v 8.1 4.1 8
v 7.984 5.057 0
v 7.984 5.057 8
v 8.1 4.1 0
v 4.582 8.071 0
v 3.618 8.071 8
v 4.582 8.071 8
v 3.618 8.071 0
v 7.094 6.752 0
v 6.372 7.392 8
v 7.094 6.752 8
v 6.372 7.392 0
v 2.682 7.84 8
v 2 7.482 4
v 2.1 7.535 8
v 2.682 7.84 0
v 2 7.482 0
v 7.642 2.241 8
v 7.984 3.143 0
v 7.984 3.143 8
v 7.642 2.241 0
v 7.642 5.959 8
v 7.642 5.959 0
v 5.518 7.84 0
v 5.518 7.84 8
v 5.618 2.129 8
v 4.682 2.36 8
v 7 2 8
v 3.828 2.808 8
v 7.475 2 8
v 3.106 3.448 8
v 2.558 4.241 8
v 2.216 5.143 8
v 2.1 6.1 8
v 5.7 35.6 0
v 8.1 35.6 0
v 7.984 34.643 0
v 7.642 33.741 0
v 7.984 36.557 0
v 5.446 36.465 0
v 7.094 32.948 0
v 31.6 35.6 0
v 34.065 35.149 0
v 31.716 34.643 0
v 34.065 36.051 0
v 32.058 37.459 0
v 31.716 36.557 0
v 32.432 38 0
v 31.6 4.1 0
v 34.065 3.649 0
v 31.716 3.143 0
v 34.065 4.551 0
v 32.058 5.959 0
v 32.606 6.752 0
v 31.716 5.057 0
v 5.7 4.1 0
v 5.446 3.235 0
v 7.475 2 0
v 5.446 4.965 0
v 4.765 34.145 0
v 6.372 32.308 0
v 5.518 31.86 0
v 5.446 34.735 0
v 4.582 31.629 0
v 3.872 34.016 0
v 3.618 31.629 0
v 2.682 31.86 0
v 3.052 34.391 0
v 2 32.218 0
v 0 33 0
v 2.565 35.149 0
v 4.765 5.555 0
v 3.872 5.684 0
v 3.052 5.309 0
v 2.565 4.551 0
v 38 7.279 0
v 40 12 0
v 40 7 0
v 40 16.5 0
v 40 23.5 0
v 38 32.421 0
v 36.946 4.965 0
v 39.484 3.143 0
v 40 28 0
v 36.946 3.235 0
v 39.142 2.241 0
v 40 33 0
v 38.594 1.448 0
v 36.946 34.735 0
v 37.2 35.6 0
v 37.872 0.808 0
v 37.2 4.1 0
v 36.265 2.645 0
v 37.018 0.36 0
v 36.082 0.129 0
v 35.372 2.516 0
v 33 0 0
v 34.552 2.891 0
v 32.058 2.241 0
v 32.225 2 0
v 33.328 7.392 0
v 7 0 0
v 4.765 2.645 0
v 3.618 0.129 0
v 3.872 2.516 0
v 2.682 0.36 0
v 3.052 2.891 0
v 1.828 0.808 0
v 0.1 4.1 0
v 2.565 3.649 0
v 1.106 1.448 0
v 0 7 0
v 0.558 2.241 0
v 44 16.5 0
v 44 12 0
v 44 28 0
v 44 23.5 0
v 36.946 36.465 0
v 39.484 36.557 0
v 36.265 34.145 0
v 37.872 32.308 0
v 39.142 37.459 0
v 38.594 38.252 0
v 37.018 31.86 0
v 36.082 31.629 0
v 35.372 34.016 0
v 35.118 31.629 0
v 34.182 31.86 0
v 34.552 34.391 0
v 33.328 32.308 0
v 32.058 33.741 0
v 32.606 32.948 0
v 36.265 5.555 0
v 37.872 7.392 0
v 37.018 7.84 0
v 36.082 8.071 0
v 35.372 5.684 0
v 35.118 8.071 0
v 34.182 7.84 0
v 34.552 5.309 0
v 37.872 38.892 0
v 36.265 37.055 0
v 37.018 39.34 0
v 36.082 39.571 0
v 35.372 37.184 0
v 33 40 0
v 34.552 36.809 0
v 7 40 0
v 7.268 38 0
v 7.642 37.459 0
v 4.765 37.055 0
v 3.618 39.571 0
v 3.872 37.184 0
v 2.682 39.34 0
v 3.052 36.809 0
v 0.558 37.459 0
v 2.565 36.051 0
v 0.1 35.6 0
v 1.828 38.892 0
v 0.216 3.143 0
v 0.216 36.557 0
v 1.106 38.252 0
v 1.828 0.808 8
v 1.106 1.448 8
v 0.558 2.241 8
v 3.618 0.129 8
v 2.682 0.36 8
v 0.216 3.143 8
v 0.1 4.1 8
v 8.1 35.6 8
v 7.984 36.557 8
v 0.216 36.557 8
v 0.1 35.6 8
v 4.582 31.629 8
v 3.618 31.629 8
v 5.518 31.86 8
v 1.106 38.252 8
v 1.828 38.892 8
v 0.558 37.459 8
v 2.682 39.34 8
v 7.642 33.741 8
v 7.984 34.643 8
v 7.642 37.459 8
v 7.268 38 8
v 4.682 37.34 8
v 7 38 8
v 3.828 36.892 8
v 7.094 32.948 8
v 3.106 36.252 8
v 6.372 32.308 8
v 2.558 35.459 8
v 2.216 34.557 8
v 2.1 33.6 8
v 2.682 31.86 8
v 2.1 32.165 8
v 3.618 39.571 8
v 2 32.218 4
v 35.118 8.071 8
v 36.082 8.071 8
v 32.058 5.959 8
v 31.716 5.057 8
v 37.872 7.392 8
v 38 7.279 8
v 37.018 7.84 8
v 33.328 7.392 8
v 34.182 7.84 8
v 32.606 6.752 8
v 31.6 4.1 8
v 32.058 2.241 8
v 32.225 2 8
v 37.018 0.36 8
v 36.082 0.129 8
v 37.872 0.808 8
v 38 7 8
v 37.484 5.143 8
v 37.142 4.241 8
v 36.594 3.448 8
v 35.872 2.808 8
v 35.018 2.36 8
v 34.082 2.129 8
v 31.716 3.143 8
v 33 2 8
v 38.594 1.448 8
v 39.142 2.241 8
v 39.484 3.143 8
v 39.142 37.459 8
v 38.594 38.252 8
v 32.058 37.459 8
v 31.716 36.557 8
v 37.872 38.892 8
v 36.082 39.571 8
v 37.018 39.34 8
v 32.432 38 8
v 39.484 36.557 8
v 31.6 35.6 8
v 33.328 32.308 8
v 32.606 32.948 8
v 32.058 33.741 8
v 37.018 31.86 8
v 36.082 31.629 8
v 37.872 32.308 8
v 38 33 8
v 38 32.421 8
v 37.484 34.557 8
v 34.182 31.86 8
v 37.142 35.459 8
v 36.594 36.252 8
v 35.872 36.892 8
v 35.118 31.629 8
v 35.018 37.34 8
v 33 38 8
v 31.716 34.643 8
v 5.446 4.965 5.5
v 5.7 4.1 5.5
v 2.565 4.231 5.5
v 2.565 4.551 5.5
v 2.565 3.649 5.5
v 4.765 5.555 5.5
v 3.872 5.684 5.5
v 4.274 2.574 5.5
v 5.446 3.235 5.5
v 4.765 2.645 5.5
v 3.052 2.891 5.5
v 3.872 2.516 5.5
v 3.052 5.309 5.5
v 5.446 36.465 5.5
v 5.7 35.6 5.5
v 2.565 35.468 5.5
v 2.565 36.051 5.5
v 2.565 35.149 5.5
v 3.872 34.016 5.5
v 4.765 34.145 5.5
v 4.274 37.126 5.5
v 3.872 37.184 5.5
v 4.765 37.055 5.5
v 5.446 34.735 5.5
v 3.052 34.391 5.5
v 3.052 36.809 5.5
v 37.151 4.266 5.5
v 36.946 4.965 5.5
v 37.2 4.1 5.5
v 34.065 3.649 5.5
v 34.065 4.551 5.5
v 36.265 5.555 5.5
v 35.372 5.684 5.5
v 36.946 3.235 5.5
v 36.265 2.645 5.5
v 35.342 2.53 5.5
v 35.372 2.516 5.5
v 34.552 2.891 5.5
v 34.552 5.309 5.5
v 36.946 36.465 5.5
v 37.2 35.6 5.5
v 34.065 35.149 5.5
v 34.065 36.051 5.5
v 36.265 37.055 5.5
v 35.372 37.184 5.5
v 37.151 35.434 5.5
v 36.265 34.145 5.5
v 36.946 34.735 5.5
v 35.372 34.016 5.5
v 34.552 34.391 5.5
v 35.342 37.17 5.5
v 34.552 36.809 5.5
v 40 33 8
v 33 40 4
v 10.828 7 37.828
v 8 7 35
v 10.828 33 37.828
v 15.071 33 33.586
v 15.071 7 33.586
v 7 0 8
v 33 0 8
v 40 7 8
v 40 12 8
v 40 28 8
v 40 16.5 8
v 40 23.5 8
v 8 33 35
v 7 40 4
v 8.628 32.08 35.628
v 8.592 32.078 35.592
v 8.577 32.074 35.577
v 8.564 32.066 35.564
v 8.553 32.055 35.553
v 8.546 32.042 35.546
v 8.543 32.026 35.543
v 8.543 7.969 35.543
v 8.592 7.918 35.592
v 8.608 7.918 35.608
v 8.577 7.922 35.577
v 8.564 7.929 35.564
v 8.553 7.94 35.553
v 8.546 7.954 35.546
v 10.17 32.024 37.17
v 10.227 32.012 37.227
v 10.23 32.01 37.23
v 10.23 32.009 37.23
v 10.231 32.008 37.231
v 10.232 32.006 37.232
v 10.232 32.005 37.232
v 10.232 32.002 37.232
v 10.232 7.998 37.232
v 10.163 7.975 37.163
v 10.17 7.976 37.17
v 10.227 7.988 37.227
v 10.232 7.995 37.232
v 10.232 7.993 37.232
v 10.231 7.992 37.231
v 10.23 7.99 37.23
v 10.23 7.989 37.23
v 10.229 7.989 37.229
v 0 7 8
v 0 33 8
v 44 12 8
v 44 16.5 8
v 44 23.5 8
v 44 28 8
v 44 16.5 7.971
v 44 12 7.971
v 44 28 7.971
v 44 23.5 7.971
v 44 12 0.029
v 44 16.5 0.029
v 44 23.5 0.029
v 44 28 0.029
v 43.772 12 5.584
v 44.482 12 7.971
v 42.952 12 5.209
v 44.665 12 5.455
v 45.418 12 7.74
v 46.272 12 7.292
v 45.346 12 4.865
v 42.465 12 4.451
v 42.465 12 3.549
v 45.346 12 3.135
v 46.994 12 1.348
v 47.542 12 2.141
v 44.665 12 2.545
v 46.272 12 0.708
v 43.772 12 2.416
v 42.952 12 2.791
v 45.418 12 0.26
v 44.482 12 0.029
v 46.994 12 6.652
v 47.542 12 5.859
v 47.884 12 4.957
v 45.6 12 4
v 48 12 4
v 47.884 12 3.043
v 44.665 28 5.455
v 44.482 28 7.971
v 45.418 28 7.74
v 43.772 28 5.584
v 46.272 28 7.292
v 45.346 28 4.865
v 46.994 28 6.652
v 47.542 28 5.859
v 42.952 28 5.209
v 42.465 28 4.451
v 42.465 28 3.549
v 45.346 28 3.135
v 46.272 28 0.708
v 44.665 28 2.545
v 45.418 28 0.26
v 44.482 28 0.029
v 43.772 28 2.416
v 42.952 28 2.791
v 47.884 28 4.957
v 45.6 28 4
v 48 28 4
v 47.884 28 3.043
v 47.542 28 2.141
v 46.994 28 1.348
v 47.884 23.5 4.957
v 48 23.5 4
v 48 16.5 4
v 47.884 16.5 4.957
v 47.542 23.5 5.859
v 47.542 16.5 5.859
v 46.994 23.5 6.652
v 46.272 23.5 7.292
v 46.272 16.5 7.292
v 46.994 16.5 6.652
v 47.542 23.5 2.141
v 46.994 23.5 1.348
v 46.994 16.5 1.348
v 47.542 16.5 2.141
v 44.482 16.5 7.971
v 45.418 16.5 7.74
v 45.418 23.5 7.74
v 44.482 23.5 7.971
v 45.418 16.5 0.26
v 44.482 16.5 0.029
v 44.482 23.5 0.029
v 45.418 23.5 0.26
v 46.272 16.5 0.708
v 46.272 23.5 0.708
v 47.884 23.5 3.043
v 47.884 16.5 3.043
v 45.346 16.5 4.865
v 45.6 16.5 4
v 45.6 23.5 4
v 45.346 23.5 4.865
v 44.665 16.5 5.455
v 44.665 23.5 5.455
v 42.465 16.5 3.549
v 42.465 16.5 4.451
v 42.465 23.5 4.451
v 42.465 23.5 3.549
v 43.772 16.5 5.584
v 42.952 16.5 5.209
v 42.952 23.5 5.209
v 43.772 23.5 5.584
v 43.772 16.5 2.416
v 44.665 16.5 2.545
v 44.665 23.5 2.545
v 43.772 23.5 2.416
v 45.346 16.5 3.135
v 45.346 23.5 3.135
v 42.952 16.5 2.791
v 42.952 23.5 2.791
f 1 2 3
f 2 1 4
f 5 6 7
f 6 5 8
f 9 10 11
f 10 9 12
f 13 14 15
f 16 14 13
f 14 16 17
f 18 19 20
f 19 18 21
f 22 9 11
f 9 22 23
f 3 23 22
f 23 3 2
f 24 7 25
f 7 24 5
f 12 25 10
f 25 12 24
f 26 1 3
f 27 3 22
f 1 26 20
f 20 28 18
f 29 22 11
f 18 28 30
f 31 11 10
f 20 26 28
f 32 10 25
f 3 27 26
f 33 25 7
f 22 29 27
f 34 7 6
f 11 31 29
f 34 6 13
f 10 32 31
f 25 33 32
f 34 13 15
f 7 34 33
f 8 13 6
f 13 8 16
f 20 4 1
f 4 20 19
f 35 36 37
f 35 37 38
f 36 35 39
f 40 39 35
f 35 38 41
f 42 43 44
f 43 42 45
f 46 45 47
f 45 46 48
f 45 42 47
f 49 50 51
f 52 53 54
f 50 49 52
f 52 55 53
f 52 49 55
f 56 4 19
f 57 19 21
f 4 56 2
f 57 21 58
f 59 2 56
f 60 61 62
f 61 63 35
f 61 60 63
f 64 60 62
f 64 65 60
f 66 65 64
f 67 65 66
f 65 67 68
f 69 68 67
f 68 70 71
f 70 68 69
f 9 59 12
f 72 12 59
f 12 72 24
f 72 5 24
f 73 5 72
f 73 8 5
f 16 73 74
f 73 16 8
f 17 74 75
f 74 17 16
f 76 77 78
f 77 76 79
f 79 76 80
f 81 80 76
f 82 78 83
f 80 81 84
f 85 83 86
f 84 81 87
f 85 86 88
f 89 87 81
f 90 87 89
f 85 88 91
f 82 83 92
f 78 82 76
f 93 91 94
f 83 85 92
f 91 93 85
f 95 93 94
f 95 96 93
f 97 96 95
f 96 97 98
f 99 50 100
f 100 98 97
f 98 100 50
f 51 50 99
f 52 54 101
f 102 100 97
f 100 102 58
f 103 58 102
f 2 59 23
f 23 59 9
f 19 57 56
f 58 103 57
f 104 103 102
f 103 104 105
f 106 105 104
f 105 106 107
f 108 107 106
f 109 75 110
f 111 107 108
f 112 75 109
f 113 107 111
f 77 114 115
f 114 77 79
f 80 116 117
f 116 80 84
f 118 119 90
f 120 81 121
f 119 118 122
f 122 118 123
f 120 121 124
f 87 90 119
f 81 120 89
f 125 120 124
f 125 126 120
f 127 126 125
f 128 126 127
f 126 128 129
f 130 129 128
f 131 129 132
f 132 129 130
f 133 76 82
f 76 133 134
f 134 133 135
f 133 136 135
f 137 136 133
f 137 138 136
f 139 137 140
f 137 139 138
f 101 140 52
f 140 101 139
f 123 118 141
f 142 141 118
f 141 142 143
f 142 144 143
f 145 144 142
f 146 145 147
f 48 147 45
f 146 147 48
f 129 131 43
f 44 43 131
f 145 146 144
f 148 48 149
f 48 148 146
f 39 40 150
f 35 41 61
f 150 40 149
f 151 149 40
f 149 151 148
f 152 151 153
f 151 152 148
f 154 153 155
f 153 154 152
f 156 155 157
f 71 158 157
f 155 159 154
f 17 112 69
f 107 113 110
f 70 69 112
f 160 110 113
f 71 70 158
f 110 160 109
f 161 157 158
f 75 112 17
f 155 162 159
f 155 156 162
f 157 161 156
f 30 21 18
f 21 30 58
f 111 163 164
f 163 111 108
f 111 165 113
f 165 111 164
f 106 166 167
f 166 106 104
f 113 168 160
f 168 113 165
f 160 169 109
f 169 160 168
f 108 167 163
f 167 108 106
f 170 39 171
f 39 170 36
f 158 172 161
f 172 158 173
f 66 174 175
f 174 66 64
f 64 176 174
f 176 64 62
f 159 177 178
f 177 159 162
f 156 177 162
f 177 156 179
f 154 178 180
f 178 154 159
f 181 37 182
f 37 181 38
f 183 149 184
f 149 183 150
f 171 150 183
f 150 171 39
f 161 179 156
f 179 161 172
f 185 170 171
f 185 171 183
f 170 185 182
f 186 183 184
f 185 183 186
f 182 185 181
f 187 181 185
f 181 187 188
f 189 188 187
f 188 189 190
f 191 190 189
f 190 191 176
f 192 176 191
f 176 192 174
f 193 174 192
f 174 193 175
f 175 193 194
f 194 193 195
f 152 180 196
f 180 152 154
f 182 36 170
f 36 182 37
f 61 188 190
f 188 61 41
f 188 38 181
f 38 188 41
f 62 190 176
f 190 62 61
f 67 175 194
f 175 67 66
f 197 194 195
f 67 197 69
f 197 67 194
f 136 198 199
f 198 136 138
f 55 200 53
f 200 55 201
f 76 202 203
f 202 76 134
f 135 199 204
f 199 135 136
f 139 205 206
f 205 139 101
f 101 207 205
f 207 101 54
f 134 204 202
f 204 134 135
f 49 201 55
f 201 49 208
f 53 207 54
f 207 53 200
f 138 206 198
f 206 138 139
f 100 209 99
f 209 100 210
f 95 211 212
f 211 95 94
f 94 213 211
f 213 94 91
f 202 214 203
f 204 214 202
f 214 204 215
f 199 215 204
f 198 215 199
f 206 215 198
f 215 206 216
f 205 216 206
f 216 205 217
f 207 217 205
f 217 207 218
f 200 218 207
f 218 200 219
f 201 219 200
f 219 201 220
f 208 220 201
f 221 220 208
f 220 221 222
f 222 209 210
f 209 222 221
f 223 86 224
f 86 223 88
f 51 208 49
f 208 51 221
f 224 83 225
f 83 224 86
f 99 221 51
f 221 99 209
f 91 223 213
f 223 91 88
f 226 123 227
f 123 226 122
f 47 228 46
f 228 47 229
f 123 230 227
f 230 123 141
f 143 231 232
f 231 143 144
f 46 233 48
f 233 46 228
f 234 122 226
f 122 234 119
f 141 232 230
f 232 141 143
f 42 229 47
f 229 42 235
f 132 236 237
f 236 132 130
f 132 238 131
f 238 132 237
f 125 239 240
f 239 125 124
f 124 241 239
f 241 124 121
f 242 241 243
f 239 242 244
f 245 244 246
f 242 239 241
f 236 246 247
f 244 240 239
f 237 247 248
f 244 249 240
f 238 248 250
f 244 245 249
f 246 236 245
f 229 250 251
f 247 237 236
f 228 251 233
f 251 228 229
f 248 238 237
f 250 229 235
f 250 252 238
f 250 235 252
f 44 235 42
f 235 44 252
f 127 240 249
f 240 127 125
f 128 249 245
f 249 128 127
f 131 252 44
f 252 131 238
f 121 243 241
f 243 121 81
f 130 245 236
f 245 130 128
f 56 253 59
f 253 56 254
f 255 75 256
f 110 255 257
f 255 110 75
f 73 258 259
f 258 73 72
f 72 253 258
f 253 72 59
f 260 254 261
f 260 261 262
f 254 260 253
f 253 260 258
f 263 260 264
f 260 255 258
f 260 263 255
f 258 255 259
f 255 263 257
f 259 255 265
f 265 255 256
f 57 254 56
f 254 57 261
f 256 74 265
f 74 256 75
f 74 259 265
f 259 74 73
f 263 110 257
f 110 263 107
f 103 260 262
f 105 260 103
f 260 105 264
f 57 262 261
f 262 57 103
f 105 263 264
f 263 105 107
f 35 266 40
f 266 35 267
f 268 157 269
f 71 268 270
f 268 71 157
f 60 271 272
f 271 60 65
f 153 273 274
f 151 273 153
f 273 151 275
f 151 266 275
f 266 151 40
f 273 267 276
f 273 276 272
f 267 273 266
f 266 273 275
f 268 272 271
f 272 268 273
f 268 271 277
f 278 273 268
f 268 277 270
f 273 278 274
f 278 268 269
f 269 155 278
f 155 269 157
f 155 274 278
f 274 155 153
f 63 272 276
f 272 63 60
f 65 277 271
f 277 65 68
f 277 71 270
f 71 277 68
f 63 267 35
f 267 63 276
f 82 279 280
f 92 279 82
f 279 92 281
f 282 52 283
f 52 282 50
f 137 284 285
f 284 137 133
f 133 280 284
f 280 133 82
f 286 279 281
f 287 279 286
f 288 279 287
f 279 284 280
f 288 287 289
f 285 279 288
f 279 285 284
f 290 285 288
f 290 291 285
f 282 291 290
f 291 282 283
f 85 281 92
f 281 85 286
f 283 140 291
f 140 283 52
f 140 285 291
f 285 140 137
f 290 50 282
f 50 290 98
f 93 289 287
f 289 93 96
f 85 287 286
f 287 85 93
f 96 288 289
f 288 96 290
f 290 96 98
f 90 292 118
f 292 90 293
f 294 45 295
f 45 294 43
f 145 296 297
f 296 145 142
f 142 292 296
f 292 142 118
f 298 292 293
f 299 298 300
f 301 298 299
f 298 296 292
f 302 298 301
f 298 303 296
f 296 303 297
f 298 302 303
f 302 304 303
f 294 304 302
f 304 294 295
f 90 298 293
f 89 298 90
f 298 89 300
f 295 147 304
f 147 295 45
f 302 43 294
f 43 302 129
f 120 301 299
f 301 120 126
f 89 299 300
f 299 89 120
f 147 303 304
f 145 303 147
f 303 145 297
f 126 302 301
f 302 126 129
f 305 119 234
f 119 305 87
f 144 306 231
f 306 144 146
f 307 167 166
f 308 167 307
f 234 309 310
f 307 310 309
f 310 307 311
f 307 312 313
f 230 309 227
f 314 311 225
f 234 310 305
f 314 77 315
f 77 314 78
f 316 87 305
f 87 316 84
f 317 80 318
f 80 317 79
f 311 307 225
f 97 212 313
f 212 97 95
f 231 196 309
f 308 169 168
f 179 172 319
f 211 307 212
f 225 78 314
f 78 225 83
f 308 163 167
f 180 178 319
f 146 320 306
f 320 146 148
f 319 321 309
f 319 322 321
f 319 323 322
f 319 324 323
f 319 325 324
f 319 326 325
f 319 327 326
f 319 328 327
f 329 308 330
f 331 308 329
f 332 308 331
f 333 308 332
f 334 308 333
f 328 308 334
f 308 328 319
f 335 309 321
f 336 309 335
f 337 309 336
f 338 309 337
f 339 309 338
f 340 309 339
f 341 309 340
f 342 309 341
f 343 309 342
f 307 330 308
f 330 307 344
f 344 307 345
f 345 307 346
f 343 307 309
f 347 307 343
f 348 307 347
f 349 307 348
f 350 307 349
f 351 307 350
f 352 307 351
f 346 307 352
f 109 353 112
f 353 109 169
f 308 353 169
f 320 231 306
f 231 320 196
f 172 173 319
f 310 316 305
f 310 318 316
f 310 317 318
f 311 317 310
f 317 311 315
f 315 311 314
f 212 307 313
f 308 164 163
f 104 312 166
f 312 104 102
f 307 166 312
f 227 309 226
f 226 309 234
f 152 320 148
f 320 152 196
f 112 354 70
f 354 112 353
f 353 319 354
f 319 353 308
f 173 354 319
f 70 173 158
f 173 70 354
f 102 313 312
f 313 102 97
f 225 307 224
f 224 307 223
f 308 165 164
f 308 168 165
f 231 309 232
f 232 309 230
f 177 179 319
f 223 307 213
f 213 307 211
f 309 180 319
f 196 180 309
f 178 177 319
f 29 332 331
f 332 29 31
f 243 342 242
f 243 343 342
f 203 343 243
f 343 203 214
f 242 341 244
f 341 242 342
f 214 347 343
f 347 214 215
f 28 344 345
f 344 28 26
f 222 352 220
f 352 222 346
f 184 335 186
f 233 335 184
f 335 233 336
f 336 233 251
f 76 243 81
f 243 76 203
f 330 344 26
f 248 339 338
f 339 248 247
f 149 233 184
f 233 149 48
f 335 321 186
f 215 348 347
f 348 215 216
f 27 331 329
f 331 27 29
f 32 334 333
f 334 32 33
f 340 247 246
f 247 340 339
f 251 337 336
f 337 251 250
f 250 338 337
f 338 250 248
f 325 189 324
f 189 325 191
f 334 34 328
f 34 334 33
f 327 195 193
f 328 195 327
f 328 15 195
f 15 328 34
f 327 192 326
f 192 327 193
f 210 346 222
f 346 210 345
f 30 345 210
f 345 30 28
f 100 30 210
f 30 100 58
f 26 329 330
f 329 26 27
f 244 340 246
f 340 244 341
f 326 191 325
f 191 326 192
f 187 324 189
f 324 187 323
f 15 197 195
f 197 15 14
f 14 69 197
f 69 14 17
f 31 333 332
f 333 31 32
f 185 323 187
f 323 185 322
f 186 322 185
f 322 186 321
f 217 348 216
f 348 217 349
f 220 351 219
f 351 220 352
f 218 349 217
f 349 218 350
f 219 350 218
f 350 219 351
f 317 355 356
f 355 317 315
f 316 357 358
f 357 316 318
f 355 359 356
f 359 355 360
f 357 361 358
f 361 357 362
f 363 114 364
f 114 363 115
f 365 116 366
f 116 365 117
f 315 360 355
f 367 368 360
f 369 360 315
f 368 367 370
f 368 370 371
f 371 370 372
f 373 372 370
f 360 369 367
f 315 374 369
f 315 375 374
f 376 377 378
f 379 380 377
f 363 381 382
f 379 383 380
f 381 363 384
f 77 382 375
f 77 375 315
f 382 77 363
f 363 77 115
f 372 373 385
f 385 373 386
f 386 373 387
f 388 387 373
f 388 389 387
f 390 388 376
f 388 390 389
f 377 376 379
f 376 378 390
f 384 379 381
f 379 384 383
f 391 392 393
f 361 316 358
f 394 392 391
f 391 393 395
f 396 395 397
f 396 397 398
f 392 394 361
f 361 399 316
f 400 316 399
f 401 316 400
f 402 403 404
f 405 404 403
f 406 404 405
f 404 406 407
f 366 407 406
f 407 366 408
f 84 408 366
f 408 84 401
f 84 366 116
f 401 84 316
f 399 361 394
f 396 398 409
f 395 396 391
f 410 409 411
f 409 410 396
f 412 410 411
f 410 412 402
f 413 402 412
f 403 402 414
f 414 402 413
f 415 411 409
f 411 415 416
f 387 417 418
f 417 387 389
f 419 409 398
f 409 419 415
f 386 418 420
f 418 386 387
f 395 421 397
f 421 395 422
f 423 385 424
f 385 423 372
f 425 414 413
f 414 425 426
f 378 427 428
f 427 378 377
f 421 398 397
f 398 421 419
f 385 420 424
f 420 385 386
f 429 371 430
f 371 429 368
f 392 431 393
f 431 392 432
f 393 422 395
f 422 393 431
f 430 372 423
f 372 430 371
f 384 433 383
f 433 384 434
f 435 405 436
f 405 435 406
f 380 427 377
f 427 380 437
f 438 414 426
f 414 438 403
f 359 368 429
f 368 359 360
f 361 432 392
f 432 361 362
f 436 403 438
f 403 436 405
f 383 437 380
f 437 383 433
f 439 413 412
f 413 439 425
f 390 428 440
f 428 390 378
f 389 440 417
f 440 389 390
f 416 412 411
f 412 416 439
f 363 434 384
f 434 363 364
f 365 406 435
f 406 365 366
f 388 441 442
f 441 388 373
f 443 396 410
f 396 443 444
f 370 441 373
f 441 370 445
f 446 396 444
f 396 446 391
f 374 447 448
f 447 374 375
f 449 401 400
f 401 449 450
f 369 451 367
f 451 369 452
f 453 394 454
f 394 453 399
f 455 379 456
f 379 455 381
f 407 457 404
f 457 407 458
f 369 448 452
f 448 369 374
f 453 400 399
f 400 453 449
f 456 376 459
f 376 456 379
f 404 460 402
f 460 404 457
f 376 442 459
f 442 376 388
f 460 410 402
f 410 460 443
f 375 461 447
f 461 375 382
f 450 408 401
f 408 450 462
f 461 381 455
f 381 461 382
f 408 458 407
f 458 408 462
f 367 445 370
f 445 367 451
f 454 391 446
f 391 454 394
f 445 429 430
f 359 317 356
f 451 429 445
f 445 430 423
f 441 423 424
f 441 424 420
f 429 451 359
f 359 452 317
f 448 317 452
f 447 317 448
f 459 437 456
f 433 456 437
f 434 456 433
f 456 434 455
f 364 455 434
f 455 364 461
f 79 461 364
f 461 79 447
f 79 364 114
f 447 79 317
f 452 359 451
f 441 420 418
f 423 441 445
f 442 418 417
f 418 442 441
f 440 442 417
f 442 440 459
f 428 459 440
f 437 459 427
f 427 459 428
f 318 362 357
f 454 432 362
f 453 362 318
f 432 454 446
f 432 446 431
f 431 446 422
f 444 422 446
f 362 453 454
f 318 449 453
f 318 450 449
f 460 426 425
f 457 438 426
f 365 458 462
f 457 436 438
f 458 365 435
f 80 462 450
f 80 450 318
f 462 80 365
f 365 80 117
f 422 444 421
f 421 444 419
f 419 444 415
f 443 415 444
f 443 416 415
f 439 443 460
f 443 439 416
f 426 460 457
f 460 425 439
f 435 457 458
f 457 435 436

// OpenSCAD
$fa = 1;
$fs = 1;

mountinghole = 8;
fansize = 40;
distance_fan_mount = 31.5;

module screw_pattern() {
    for(x=[4.1, 35.6], y=[4.1, 35.6]) {
        translate([x, y, -0.5]) cylinder(r=1.6, h=6);
    }
}

module fan_duct() {
    hull() {
        for(x=[4.1, 35.6], y=[4.1, 35.6]) {
            translate([x, y, 0]) cylinder(r=4, h=8);
        }

        translate([7, 0, 0]) cube([fansize-14, 3, 8]);
        translate([7, fansize-3, 0]) cube([fansize-14, 3, 4]);
        
        translate([0, 7, 0]) cube([3, fansize-14, 8]);
        translate([fansize-3, 7, 0]) cube([3, fansize-14, 8]);
        
        translate([8, 7, 35]) rotate([0, 45, 0]) cube([6, fansize-14, 4]);
    }
}

module fan_duct_negative() {
    hull() {
        for(x=[6.1, 33.6], y=[6.1, 33.6]) {
            translate([x, y, 0]) cylinder(r=4, h=8);
        }

        translate([7, 2, 0]) cube([fansize-14, 3, 8]);
        translate([7, fansize-3-2, 0]) cube([fansize-14, 3, 8]);
        
        translate([2, 7, 0]) cube([3, fansize-14, 4]);
        translate([fansize-3-2, 7, 0]) cube([3, fansize-14, 8]);
        
        translate([8.65, 8, 36]) rotate([0, 50, 0]) cube([6, fansize-16, 2]);
    }
}

module extruder_mount() {
    translate([fansize, fansize/2-8, 0]) {
        difference() {
            union() {
                cube([4, 16, 8]);
                translate([4, 16, 4]) rotate([90, 0, 0]) cylinder(r=4, h=16);
            }
            translate([4, 18, 4]) rotate([90, 0, 0]) cylinder(r=1.6, h=20);
            
            translate([0, 4.5, -0.1]) cube([16, 7, 8.2]);
        }
    }

}

difference() {
    fan_duct();
    
    fan_duct_negative();
    
    screw_pattern();

}

difference() {
    for(x=[4.1, 35.6], y=[4.1, 35.6]) {
        translate([x, y, 0]) cylinder(r=4, h=8);
    }
    screw_pattern();
}

extruder_mount();
